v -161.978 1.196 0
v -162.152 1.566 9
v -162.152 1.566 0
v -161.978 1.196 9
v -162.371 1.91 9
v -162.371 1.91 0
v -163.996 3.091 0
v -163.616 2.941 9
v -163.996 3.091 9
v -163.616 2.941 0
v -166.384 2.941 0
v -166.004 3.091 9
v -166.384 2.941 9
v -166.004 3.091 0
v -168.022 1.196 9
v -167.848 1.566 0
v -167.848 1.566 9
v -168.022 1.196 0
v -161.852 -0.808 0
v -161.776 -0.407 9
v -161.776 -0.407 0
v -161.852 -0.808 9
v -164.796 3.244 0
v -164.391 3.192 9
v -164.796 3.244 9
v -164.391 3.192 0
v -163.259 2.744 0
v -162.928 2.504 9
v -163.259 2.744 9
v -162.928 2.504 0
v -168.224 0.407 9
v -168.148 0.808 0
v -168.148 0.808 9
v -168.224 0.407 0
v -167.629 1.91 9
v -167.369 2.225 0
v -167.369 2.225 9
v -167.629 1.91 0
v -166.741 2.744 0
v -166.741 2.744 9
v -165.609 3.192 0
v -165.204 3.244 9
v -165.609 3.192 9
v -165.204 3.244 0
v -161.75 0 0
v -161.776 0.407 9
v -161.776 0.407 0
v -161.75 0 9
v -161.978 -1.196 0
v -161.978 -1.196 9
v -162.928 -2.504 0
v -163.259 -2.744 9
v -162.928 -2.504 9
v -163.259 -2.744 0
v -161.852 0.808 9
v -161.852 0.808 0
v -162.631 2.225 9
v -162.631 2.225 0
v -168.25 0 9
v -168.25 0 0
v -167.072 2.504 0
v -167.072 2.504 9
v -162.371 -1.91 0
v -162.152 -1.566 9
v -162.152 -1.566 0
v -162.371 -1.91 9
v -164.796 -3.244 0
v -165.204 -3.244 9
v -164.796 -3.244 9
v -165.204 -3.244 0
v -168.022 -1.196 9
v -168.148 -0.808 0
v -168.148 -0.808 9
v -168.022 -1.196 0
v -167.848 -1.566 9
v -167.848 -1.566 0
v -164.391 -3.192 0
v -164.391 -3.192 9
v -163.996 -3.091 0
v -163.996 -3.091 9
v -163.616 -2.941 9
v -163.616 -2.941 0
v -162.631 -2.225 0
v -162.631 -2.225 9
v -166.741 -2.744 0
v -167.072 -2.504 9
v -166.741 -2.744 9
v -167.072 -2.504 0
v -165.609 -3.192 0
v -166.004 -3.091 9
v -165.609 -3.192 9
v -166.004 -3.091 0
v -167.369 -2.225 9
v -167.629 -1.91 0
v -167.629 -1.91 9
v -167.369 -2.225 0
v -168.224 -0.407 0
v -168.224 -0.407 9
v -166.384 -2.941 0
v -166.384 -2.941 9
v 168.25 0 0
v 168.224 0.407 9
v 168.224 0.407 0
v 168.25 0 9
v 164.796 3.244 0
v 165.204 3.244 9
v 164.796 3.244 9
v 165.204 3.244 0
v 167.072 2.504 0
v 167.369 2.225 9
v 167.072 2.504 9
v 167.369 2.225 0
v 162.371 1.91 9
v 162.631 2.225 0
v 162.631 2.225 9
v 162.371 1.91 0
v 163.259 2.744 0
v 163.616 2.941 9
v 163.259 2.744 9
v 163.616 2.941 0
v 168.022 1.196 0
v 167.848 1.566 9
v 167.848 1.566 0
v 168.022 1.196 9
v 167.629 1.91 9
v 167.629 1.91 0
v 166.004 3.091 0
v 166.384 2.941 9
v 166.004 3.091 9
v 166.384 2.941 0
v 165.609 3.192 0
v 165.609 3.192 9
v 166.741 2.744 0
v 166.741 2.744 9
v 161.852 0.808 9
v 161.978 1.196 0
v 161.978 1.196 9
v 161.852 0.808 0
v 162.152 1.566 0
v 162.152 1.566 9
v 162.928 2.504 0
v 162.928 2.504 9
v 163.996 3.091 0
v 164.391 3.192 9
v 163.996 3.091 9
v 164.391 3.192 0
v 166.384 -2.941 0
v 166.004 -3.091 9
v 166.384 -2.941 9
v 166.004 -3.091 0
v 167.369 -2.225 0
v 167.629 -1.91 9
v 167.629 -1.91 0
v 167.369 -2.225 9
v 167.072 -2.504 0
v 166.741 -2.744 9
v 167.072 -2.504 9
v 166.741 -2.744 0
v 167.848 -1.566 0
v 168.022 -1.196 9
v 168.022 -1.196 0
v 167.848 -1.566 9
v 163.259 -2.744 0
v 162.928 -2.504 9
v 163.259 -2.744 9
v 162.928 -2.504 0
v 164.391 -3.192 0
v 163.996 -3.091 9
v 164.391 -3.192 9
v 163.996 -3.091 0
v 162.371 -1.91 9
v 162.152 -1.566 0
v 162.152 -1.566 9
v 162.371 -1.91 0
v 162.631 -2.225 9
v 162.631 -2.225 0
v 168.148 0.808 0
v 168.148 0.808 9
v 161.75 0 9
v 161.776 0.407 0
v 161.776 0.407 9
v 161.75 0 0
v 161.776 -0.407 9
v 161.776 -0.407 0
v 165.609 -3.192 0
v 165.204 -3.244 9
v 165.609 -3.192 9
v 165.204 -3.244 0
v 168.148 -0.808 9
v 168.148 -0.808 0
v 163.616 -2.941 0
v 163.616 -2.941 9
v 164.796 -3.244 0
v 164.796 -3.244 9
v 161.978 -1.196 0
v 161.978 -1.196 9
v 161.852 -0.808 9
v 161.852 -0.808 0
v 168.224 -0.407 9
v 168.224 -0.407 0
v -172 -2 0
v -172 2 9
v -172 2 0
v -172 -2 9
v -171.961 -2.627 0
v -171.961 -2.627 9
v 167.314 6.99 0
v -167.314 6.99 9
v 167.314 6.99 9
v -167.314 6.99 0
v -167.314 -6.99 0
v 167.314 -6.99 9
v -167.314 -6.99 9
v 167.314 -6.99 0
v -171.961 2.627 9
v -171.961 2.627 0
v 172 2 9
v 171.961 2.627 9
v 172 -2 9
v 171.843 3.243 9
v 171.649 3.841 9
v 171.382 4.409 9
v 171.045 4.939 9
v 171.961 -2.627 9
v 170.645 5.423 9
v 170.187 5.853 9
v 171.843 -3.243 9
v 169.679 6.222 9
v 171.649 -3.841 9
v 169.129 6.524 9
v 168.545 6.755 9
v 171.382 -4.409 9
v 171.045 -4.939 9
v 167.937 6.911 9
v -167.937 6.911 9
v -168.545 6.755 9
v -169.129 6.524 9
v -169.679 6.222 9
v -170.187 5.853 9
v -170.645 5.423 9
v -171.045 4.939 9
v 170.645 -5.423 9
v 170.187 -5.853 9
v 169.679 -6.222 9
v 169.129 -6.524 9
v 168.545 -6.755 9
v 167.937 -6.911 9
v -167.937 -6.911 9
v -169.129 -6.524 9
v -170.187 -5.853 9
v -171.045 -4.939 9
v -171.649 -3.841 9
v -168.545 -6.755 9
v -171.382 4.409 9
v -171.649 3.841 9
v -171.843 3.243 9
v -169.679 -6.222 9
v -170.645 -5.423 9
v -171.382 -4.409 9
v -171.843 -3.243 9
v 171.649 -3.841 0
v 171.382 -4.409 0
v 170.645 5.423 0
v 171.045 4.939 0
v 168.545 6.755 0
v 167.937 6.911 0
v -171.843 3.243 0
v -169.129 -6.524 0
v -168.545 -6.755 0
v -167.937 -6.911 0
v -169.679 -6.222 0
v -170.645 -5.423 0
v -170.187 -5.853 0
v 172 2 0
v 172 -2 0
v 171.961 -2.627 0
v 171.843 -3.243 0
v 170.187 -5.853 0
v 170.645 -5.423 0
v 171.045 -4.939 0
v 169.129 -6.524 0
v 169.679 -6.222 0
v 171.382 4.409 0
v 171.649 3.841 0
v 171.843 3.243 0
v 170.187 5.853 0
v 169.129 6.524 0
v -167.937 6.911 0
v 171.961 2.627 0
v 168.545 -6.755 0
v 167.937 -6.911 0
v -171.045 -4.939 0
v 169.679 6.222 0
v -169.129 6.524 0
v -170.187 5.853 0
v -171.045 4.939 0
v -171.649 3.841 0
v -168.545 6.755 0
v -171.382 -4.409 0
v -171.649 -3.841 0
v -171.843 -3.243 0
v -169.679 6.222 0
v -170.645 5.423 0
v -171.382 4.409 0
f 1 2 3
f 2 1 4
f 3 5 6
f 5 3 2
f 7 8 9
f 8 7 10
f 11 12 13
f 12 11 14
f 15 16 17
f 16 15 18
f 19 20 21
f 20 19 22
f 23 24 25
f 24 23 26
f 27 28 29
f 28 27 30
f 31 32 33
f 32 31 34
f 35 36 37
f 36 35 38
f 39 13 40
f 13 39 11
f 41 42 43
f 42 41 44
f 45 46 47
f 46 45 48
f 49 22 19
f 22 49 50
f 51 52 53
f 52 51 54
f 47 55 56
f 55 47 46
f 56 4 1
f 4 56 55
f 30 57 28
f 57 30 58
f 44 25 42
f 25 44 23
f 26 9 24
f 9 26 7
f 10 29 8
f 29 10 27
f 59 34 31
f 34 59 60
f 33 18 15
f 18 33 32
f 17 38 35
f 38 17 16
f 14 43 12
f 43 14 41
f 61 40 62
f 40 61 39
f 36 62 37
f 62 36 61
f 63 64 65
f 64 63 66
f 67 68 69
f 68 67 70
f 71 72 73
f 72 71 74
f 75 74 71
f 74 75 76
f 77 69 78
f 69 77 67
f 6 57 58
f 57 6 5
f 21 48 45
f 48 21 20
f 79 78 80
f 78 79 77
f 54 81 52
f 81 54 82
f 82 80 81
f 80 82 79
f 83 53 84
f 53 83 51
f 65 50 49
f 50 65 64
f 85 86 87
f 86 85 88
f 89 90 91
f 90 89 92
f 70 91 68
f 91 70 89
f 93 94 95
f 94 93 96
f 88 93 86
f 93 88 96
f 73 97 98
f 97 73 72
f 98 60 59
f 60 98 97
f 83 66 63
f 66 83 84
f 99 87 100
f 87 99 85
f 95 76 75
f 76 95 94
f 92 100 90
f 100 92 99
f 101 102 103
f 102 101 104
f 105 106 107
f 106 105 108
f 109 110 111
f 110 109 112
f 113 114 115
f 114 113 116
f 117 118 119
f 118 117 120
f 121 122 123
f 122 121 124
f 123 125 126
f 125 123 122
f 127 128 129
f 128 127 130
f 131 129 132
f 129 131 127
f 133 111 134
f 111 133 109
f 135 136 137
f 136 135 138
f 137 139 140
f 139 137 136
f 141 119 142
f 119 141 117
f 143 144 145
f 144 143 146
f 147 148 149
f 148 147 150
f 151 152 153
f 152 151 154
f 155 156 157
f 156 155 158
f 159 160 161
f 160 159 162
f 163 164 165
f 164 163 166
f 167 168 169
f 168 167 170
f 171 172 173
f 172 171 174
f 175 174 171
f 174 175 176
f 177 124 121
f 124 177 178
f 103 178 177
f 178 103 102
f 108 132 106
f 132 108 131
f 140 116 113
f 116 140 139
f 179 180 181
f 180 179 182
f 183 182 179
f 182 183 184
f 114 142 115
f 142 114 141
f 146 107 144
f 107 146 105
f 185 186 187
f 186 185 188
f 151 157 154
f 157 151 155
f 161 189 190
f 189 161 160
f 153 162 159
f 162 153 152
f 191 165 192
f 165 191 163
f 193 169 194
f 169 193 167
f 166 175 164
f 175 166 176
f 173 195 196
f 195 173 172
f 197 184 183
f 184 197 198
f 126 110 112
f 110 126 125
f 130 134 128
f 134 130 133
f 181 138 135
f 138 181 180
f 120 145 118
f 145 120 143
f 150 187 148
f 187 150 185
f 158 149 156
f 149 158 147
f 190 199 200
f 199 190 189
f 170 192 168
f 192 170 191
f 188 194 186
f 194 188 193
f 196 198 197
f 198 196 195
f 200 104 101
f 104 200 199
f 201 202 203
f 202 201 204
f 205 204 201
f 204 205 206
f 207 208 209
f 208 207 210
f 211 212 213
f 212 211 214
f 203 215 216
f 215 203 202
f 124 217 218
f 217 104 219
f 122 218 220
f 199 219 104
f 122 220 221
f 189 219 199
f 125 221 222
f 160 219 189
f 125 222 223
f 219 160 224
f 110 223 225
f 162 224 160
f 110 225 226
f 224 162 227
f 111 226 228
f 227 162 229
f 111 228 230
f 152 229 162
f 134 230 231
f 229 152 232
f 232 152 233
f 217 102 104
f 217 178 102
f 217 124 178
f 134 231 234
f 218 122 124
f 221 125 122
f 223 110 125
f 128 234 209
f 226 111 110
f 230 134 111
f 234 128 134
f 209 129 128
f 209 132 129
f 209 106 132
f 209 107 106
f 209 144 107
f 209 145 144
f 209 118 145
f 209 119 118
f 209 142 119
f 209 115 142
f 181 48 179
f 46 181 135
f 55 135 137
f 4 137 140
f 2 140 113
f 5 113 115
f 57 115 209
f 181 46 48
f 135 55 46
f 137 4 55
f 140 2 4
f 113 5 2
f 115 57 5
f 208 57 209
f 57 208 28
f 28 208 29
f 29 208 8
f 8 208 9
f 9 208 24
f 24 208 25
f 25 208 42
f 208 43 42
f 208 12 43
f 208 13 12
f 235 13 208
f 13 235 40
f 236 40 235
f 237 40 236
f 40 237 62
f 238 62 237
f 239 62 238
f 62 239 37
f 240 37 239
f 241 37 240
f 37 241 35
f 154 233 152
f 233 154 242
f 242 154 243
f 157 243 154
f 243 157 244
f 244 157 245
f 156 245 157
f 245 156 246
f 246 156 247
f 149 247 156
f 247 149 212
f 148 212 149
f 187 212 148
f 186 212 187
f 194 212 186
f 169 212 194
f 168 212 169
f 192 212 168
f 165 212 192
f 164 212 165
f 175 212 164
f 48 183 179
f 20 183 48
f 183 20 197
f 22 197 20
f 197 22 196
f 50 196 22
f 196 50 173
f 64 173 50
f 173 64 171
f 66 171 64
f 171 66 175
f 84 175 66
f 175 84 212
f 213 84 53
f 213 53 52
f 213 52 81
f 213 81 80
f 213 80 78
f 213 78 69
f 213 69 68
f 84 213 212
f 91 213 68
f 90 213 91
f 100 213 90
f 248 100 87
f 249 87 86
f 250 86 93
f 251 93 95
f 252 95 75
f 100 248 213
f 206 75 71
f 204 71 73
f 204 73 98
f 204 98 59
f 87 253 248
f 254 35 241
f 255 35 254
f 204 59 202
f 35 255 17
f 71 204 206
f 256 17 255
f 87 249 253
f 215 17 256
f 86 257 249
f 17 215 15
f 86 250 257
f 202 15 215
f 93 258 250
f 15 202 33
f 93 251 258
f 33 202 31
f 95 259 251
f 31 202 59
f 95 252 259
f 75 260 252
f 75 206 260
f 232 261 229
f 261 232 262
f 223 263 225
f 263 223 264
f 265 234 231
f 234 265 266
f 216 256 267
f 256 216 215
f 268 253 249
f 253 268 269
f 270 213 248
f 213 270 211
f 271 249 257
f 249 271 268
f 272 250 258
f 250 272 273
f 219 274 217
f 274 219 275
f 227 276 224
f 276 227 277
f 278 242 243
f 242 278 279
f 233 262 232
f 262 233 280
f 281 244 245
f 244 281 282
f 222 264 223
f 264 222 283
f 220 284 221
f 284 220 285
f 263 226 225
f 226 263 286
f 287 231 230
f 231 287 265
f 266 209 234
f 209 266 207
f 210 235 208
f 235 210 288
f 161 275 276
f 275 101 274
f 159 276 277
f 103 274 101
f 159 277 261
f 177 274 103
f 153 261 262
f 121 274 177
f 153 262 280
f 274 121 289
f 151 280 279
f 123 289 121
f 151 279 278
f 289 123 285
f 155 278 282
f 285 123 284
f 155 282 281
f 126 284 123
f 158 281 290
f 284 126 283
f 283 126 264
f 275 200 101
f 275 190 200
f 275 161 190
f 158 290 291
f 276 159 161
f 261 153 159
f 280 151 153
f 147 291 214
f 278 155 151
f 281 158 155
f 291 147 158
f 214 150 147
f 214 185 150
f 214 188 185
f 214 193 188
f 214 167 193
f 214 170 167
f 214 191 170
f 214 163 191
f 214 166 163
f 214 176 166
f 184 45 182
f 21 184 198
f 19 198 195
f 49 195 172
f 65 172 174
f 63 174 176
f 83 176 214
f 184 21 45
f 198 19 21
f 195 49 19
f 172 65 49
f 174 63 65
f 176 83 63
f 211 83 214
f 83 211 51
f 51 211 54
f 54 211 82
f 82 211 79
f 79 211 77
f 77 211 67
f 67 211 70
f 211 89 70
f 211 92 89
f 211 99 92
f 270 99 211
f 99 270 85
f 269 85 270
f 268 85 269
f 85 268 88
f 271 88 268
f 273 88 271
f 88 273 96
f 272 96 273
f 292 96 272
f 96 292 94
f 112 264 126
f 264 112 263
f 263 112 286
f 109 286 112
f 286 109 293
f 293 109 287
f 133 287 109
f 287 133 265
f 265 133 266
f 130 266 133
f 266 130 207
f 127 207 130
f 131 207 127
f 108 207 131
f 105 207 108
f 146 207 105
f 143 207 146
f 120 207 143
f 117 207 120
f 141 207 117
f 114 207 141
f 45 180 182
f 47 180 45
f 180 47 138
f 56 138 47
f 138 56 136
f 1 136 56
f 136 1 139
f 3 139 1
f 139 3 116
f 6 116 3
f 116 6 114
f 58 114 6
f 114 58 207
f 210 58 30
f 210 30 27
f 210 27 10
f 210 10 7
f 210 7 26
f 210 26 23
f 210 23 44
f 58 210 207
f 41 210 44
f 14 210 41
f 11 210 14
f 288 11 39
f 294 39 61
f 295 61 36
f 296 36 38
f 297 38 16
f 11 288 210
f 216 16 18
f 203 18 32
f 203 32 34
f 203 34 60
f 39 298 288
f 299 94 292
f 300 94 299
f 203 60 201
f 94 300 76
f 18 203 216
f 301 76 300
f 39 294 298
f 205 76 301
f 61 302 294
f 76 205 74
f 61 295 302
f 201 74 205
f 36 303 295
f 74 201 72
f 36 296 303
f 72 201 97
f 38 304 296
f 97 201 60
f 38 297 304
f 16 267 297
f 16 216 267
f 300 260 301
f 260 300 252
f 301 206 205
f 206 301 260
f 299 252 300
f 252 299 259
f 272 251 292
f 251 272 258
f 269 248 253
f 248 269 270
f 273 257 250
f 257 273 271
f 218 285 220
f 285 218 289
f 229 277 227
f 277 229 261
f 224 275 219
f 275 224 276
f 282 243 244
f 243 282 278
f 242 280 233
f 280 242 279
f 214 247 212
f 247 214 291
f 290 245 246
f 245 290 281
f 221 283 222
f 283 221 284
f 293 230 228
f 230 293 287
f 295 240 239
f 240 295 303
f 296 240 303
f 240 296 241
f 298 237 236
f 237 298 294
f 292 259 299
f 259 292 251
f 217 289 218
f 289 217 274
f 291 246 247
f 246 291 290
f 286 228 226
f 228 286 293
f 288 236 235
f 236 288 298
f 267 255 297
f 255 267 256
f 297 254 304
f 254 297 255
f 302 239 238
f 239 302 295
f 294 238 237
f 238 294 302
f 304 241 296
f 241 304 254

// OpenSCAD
$fn = 50;


difference() {
	union() {
		hull() {
			translate(v = [-167.0000000000, 2.0000000000, 0]) {
				cylinder(h = 9, r = 5);
			}
			translate(v = [167.0000000000, 2.0000000000, 0]) {
				cylinder(h = 9, r = 5);
			}
			translate(v = [-167.0000000000, -2.0000000000, 0]) {
				cylinder(h = 9, r = 5);
			}
			translate(v = [167.0000000000, -2.0000000000, 0]) {
				cylinder(h = 9, r = 5);
			}
		}
	}
	union() {
		translate(v = [-165.0000000000, 0.0000000000, 0]) {
			cylinder(h = 9, r = 3.2500000000);
		}
		translate(v = [165.0000000000, 0.0000000000, 0]) {
			cylinder(h = 9, r = 3.2500000000);
		}
		translate(v = [-165.0000000000, 0.0000000000, 0]) {
			cylinder(h = 9, r = 1.8000000000);
		}
		translate(v = [165.0000000000, 0.0000000000, 0]) {
			cylinder(h = 9, r = 1.8000000000);
		}
		translate(v = [-165.0000000000, 0.0000000000, 0]) {
			cylinder(h = 9, r = 1.8000000000);
		}
		translate(v = [165.0000000000, 0.0000000000, 0]) {
			cylinder(h = 9, r = 1.8000000000);
		}
		translate(v = [-165.0000000000, 0.0000000000, 0]) {
			cylinder(h = 9, r = 1.8000000000);
		}
		translate(v = [165.0000000000, 0.0000000000, 0]) {
			cylinder(h = 9, r = 1.8000000000);
		}
	}
}
